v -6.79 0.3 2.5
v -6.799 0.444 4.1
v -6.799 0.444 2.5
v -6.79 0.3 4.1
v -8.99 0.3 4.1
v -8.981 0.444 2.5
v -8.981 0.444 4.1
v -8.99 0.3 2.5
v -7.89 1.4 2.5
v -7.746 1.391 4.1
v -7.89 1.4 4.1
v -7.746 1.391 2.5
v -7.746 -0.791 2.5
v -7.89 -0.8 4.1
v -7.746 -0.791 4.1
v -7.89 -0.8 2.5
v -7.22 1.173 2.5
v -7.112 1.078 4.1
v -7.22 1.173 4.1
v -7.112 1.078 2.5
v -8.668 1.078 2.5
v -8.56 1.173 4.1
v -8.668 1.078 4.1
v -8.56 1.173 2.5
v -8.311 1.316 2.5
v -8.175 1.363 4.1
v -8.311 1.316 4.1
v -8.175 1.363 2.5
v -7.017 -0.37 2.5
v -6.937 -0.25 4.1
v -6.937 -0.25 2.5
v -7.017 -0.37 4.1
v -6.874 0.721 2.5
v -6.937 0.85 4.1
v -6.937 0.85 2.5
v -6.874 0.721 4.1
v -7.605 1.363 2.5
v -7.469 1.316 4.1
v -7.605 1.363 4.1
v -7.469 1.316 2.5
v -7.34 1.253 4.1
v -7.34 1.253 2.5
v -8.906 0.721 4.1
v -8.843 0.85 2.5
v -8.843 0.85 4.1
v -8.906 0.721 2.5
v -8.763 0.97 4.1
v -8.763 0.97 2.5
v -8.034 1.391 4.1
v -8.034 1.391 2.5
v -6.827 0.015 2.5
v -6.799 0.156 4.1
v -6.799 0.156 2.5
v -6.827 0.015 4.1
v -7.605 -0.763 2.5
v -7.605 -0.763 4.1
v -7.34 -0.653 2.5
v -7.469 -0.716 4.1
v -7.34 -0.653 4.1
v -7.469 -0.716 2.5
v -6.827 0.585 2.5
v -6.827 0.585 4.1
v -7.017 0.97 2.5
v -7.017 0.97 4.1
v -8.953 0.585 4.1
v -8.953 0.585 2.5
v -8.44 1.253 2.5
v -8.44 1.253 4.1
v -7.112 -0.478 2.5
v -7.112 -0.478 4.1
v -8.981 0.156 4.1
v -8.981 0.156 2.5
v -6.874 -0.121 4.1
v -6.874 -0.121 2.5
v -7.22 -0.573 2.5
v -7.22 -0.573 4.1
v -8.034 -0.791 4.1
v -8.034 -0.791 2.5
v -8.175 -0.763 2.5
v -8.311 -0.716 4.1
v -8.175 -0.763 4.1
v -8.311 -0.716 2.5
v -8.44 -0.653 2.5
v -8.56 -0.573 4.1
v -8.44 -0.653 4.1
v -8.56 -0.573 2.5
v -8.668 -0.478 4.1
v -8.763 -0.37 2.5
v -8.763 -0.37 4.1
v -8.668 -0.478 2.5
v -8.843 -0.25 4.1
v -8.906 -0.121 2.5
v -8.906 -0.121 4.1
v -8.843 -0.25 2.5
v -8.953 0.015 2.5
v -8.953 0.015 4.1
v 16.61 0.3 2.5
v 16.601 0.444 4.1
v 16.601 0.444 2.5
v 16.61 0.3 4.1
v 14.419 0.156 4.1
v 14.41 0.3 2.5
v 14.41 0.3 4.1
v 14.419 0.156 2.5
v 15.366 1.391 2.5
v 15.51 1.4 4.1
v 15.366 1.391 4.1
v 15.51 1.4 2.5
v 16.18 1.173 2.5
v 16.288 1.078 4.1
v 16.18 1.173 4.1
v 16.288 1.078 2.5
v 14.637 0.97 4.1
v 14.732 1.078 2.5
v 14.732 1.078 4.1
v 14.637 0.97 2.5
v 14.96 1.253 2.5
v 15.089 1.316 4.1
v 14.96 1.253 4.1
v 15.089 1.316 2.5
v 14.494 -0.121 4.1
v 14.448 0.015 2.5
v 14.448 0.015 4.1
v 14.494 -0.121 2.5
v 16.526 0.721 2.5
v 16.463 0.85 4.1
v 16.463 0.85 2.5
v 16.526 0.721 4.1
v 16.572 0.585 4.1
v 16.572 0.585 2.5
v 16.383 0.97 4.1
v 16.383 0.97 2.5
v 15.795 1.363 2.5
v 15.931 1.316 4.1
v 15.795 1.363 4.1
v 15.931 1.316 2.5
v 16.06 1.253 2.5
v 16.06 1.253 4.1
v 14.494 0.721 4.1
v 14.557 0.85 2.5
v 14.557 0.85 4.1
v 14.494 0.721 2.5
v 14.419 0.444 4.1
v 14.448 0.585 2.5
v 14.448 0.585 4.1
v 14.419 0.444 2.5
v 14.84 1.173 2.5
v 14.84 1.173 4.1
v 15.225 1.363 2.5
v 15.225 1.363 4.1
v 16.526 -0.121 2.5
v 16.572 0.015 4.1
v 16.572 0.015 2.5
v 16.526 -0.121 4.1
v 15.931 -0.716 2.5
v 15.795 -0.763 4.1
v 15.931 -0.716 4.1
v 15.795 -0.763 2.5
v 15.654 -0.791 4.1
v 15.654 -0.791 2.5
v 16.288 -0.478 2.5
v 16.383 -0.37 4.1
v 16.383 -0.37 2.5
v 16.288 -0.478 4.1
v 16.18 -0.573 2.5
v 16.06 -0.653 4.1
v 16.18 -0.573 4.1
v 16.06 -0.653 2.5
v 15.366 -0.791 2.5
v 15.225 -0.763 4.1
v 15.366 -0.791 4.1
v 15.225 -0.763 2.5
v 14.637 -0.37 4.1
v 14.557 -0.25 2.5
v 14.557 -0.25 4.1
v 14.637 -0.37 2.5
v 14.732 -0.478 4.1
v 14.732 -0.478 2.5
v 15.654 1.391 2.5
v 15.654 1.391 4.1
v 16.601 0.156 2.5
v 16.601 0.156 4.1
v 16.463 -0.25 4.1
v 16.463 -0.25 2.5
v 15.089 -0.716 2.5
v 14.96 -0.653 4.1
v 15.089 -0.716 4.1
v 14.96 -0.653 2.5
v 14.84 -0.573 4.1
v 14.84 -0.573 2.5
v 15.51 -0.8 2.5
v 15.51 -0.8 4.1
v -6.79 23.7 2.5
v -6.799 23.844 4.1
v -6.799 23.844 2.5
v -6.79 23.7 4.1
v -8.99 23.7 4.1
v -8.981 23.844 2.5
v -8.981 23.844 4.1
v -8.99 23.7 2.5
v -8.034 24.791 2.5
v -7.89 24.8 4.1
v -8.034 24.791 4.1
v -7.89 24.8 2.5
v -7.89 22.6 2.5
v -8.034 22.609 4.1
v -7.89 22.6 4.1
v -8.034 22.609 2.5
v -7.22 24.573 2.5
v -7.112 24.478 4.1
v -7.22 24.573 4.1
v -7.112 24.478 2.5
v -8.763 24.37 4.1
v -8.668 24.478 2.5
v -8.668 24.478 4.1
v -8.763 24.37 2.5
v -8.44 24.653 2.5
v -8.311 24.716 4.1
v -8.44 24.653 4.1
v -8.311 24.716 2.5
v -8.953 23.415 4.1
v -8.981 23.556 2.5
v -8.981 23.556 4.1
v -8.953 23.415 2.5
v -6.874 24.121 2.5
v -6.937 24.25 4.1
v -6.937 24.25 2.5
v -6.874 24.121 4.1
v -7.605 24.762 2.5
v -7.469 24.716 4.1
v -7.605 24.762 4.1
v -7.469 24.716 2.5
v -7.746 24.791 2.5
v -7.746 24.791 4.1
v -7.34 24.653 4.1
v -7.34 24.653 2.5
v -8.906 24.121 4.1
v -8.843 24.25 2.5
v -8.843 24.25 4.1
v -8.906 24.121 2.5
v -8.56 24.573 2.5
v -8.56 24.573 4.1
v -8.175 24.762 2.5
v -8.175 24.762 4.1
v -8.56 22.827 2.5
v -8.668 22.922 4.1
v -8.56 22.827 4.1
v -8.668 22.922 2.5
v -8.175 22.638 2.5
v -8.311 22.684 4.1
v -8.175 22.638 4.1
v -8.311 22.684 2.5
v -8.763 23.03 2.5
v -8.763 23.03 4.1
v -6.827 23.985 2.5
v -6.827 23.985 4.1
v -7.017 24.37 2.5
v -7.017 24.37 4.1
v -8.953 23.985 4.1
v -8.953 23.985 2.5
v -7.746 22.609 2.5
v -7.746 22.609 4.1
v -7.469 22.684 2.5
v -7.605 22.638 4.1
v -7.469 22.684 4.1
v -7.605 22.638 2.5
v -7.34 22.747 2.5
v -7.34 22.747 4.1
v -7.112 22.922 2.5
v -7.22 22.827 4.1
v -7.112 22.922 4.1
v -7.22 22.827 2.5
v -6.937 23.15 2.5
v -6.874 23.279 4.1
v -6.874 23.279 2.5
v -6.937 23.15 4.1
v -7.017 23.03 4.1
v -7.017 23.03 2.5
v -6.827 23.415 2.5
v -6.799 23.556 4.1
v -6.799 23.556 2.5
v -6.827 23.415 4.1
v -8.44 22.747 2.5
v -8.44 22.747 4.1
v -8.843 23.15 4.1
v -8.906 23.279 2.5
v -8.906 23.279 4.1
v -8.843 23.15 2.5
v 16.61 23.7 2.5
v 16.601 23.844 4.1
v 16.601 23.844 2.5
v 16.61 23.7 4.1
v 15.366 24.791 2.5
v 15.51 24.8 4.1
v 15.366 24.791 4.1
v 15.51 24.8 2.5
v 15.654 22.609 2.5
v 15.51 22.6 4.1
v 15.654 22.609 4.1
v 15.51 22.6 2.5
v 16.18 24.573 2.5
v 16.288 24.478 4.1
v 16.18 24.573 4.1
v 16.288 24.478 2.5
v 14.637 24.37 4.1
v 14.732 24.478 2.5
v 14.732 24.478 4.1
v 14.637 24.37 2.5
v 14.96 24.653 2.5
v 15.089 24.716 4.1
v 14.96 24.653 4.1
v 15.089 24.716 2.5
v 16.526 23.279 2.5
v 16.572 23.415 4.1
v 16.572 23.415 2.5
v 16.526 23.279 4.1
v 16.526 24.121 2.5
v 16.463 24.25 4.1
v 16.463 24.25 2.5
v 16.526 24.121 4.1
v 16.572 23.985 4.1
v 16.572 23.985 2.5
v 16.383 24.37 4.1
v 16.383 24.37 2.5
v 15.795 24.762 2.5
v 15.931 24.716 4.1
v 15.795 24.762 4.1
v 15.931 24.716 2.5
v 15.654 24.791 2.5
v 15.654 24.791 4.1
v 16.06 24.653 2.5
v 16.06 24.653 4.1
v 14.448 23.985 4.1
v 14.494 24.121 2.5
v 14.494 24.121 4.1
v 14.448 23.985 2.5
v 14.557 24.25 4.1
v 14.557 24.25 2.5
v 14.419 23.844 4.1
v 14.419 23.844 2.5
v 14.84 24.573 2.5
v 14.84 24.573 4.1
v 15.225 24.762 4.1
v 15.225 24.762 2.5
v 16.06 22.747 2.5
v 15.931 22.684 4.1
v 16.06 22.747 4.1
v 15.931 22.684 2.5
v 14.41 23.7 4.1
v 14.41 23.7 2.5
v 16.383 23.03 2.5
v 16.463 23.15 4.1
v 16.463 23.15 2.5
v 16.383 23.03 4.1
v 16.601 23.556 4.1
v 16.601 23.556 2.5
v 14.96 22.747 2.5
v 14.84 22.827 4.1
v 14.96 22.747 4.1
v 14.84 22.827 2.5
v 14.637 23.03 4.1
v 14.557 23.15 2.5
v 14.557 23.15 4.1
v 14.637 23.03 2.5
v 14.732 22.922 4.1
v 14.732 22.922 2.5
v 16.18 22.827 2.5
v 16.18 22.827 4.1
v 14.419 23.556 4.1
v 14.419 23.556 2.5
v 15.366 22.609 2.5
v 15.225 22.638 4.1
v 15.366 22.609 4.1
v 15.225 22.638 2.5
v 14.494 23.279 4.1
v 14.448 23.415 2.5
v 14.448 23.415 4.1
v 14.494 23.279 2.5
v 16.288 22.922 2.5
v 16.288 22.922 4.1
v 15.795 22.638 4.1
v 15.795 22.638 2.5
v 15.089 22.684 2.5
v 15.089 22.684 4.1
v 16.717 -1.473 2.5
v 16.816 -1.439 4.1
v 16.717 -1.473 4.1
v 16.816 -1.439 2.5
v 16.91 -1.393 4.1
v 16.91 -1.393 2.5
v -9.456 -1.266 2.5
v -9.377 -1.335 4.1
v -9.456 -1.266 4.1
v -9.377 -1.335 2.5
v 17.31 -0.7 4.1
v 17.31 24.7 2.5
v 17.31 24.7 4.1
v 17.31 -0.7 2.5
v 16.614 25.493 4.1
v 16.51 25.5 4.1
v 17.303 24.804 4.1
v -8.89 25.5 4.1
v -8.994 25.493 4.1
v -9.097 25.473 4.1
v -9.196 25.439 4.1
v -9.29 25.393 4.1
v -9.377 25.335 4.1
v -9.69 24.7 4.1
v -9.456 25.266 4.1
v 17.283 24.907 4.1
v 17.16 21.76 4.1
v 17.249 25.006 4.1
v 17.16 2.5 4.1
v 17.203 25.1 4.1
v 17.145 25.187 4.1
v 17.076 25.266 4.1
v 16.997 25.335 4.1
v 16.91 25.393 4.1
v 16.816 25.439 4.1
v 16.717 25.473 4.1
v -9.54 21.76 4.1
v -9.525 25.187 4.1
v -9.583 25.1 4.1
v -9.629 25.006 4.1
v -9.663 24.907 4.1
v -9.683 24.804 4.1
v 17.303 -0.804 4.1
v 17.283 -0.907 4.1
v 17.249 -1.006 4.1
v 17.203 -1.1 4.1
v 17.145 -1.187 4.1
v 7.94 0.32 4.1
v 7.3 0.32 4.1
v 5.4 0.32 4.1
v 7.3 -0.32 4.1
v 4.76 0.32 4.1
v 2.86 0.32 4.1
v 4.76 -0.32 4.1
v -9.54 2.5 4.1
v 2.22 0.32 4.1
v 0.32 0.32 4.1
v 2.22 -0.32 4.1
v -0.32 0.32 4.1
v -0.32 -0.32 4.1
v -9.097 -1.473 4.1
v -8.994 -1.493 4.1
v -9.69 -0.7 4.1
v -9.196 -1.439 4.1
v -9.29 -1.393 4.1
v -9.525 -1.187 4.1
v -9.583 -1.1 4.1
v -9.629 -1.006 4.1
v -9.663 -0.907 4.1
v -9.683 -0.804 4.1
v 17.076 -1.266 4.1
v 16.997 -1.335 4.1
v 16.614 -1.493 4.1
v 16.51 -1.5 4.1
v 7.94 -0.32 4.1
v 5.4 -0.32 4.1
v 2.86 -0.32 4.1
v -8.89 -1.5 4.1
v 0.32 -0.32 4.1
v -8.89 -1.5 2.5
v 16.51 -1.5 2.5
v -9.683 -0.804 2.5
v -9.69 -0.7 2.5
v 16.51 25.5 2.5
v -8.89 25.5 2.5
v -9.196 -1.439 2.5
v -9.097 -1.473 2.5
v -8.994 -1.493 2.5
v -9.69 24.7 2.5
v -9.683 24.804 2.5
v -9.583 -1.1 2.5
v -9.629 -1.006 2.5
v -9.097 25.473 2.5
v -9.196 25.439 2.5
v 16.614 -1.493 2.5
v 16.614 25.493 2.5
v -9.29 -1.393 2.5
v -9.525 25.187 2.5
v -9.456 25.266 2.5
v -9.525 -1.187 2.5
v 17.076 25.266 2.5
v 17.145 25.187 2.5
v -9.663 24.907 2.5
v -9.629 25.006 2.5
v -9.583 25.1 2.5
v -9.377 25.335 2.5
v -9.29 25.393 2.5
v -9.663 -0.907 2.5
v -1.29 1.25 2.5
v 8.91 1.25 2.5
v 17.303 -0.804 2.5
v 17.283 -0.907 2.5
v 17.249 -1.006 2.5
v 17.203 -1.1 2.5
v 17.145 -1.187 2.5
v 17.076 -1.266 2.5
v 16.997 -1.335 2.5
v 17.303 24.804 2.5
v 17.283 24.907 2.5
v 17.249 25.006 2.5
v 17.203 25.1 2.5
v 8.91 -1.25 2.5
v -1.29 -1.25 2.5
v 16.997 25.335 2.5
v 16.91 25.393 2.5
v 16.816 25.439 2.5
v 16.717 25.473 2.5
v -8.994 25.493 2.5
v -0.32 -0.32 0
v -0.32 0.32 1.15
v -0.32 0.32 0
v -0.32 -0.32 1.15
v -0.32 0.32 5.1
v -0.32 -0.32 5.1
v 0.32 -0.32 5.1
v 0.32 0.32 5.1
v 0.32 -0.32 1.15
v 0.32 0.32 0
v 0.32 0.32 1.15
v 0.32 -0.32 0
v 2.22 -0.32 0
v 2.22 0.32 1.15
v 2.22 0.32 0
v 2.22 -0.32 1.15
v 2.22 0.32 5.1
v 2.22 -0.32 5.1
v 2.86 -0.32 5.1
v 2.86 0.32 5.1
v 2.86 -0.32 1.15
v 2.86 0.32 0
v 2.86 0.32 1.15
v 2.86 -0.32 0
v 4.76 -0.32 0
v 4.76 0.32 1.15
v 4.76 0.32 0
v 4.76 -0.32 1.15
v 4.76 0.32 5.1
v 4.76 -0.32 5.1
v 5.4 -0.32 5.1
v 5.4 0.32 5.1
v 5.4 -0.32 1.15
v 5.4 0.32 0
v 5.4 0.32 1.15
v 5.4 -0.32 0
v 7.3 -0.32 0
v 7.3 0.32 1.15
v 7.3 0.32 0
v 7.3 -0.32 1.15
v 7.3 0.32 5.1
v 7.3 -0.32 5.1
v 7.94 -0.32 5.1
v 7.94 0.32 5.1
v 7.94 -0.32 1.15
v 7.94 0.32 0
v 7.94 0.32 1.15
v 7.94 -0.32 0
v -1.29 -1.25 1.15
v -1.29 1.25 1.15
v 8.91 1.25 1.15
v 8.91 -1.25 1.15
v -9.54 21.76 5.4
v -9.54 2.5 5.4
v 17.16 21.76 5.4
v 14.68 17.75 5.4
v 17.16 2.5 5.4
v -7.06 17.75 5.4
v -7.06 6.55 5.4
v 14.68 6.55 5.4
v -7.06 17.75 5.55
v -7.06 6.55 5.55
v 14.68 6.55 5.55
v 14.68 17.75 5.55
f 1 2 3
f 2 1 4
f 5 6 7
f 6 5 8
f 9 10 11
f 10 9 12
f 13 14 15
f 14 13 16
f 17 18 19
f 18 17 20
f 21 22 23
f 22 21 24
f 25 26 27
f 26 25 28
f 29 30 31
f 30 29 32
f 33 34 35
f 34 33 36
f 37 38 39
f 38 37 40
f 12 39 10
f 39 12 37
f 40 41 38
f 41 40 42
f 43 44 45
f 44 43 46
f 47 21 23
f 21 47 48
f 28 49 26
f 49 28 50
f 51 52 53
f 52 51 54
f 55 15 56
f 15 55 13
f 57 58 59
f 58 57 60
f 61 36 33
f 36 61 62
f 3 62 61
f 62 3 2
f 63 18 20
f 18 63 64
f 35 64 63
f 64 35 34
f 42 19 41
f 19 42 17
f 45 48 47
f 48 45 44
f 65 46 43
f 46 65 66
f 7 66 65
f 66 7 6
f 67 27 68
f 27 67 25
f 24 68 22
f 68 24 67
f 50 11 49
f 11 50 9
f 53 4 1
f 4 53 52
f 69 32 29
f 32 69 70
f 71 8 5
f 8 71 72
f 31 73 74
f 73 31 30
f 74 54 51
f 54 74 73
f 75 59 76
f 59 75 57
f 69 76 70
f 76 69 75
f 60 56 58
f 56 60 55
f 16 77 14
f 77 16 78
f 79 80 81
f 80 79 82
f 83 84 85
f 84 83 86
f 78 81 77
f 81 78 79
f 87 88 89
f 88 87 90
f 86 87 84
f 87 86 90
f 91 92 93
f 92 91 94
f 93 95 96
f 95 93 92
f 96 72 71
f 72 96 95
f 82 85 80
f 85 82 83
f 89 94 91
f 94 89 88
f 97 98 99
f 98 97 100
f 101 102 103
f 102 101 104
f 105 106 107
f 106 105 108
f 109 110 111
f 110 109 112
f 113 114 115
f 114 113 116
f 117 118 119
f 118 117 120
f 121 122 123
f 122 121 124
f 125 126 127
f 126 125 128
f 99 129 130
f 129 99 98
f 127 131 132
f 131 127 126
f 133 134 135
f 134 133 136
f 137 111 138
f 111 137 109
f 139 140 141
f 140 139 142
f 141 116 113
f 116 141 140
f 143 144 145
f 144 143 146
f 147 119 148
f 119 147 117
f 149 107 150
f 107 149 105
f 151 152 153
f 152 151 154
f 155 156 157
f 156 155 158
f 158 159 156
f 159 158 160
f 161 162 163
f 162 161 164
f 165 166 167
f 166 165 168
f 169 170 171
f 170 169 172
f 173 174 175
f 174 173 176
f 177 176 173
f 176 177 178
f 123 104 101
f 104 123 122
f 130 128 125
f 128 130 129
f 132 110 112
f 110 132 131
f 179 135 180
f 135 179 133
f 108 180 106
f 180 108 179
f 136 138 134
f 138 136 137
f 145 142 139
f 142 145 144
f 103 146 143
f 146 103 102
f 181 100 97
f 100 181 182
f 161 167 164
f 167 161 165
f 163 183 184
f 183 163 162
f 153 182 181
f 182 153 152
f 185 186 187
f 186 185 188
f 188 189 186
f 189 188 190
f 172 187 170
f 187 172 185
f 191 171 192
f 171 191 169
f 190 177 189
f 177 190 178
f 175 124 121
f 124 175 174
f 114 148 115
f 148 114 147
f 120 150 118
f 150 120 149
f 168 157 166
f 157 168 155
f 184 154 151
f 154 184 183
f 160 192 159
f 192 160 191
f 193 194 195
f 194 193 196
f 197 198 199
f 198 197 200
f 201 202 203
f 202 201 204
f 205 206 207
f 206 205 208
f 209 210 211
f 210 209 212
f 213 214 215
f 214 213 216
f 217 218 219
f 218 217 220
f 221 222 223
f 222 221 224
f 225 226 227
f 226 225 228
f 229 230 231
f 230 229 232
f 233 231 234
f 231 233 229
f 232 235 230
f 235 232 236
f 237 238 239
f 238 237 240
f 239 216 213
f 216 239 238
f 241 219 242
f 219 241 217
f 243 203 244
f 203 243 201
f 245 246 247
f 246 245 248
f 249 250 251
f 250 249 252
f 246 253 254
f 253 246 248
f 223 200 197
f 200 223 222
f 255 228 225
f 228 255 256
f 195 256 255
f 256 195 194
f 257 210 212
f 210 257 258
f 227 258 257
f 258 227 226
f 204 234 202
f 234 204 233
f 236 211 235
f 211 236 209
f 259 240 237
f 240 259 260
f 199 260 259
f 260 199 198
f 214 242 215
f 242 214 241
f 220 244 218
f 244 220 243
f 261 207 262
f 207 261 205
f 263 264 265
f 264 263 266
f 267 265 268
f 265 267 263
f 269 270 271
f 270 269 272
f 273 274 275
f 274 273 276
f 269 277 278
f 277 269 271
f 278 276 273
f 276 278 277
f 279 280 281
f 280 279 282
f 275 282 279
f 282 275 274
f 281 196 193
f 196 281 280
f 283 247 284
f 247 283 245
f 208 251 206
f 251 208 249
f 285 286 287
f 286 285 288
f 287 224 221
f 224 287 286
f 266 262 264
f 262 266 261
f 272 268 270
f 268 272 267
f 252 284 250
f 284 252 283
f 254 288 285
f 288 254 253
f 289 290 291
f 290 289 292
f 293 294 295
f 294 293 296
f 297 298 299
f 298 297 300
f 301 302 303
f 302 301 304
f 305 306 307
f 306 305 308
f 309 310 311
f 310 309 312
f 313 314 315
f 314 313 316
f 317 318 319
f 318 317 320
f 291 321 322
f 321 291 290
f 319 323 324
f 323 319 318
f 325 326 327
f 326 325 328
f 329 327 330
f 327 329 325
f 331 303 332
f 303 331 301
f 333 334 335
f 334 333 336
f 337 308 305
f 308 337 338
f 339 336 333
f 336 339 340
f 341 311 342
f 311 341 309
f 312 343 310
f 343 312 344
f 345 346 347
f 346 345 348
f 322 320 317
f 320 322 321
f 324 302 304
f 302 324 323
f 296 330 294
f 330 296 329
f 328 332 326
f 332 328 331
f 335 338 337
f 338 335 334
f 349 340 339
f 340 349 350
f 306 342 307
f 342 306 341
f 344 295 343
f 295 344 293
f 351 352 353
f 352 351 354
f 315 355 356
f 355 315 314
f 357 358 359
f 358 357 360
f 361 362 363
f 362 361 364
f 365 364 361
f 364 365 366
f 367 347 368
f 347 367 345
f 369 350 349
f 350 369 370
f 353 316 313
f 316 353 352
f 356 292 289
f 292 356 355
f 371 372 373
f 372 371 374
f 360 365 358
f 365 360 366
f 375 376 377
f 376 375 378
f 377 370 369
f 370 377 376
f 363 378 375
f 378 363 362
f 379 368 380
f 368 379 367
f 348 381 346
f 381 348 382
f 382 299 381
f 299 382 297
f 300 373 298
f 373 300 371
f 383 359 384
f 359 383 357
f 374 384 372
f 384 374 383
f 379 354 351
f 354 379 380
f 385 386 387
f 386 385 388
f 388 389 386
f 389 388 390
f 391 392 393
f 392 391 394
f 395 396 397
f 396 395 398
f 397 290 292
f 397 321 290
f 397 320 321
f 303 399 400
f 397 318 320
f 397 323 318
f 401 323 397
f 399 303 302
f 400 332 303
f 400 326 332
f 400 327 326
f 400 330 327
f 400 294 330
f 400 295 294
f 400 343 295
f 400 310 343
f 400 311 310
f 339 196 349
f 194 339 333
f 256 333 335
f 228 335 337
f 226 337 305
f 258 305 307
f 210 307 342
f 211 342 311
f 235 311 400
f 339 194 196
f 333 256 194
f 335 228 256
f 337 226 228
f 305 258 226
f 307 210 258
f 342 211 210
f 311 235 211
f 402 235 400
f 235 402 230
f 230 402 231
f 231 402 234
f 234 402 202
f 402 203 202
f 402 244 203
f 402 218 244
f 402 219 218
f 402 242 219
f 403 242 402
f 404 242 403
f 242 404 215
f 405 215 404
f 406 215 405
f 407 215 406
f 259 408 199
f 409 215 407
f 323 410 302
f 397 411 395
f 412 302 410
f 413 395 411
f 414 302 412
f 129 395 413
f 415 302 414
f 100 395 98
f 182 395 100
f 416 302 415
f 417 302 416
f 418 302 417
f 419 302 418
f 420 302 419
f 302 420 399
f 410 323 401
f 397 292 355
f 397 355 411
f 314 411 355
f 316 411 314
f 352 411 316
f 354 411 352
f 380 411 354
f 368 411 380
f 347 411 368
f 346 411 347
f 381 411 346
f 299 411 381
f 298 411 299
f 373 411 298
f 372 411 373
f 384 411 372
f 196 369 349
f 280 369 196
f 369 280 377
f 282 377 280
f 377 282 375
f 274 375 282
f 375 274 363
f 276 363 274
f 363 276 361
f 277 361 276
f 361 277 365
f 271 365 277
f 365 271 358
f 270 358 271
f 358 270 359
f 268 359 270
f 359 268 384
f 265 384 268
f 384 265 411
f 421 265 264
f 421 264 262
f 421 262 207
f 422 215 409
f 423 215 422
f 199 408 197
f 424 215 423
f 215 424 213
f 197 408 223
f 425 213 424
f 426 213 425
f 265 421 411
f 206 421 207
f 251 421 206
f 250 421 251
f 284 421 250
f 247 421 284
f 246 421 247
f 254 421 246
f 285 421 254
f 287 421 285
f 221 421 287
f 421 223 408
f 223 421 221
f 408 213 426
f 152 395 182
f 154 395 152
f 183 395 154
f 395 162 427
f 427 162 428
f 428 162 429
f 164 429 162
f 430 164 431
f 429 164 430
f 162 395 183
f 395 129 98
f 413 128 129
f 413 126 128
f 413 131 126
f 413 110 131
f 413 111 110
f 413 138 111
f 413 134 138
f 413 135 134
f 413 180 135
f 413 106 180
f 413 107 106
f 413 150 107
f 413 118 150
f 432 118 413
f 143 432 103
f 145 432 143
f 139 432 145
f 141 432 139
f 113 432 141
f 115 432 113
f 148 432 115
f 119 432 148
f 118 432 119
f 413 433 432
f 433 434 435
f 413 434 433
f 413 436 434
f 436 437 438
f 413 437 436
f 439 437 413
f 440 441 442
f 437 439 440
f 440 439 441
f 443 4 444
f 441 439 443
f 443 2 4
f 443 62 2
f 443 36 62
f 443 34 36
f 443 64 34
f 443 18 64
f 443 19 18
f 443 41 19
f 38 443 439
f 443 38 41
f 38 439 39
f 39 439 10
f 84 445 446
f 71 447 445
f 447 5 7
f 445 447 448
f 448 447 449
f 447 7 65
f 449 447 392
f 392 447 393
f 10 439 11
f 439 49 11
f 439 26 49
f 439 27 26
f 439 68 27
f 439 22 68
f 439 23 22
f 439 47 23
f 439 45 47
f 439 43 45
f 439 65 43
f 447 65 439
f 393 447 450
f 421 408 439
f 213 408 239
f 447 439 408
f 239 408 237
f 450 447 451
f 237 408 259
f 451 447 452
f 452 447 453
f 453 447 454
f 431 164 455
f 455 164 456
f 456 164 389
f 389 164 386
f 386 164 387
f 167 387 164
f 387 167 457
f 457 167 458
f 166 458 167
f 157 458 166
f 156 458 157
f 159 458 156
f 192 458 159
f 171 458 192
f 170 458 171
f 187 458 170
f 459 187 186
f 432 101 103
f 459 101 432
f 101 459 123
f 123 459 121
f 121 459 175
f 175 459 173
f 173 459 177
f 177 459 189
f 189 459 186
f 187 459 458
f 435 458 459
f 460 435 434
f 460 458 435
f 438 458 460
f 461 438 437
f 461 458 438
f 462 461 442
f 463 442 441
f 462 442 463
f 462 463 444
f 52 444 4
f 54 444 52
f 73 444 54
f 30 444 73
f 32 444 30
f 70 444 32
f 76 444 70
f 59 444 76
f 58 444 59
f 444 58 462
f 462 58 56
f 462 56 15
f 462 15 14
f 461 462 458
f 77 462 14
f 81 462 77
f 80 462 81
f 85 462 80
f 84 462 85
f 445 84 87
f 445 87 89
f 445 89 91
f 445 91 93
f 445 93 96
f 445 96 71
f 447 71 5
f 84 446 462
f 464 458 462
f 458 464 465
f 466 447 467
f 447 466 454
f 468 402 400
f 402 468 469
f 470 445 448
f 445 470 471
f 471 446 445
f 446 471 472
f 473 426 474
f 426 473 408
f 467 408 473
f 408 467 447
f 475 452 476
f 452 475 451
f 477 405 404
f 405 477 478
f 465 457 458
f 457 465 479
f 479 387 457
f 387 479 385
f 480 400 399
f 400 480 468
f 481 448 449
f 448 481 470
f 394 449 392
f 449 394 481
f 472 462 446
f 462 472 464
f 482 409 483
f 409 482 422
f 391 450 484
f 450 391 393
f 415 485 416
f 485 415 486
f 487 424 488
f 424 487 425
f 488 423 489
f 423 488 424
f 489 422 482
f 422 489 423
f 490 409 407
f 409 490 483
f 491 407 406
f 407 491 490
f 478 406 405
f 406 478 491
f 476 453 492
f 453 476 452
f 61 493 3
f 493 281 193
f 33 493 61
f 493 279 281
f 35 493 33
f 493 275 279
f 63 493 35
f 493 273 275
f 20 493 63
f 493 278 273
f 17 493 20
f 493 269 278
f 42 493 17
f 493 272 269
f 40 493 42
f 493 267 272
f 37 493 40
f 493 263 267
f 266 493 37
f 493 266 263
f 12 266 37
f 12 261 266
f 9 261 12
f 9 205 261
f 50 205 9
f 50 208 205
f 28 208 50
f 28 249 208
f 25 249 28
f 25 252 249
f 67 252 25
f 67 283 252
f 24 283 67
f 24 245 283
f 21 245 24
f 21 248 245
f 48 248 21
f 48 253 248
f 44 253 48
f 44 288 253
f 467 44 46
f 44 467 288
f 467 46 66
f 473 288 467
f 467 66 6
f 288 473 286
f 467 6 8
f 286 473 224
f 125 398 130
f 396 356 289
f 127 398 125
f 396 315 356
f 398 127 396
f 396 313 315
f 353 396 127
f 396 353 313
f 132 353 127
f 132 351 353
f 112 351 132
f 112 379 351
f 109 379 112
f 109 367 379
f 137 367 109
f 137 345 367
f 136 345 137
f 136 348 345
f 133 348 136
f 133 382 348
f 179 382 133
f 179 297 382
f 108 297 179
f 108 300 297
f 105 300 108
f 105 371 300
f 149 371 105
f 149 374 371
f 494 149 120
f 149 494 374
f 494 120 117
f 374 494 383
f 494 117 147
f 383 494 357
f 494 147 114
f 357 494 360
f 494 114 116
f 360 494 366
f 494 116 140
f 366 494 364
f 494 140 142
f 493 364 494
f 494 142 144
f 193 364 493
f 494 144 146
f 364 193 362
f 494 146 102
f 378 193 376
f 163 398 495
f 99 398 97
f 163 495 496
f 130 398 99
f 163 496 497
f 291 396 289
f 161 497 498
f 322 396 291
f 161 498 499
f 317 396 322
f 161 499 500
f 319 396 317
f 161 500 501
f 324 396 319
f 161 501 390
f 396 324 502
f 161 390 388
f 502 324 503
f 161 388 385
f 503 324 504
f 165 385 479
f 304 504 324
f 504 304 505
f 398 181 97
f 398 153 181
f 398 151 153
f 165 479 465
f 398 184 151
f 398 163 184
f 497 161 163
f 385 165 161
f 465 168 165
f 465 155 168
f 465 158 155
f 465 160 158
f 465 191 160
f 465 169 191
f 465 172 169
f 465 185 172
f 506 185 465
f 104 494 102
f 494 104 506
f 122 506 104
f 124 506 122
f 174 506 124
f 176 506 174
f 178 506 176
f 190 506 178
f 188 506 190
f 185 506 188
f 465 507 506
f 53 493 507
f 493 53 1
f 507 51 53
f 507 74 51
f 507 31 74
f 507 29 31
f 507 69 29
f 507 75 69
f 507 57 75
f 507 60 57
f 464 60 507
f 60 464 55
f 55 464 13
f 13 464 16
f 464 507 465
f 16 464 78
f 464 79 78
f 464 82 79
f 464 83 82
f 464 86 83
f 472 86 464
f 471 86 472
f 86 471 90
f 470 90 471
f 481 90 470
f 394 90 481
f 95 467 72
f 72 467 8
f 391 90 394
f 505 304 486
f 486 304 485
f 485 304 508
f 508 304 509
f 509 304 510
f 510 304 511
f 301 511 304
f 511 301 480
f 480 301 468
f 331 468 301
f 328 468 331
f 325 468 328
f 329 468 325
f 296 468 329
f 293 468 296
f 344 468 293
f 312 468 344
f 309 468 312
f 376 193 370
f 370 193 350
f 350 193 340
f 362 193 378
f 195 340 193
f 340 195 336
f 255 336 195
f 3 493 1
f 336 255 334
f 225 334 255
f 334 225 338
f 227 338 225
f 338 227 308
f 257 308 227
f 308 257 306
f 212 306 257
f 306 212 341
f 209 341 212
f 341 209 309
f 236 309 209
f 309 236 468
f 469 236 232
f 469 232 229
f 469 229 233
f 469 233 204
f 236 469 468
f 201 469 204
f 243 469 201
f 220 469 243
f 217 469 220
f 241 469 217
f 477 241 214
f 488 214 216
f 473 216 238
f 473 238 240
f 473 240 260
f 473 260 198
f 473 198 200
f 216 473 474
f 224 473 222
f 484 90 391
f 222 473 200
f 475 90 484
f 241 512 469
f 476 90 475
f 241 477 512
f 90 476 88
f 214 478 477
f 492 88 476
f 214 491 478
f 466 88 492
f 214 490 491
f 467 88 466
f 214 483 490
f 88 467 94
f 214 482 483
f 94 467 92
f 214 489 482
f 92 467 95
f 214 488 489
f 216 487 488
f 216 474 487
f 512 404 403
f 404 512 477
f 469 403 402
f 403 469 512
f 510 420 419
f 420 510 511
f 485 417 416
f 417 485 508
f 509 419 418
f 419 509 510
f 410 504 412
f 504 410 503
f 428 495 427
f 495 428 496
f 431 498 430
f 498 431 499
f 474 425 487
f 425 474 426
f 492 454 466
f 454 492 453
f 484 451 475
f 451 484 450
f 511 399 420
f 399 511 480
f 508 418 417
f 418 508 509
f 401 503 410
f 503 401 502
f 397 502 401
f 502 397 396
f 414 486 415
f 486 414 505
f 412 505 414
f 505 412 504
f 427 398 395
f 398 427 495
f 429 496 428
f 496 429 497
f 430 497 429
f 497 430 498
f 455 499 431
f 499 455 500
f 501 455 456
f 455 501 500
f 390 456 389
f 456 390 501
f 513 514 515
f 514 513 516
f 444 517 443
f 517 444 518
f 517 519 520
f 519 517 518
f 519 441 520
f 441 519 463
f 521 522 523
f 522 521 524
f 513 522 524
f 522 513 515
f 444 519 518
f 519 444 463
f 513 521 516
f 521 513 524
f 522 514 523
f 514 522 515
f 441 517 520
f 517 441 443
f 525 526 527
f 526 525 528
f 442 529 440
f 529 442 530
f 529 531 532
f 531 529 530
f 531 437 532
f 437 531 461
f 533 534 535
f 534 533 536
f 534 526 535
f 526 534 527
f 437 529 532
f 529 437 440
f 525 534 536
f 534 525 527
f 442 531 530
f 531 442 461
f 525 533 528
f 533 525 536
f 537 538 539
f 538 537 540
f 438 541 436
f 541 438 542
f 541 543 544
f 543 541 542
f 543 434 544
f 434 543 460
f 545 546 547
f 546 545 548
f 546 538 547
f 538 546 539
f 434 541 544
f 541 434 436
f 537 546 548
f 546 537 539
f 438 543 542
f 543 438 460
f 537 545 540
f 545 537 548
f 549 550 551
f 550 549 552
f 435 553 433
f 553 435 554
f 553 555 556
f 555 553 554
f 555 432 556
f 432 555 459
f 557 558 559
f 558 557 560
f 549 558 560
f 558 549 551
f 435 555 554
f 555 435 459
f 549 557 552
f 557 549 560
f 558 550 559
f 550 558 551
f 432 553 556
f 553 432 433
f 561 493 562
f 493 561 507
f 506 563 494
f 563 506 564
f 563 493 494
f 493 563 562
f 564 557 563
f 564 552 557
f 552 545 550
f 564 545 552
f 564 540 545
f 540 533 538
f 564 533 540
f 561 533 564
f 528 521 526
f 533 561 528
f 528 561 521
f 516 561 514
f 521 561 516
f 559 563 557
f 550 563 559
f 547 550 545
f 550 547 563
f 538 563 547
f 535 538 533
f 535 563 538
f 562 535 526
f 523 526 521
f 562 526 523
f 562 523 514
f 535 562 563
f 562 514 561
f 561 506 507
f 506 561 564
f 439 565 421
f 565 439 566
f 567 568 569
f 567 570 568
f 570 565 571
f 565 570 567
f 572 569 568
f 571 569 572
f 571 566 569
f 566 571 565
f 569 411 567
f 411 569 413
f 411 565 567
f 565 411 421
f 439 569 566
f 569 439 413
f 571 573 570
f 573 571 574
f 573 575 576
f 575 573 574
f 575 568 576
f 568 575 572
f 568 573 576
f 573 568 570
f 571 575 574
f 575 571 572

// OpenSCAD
// Simplified 0.96-inch SSD1306 I2C OLED module for KiCad 3D visualization.
// Origin: footprint pad 1 (GND), Z=0 at host-PCB top.

$fn = 48;
eps = 0.02;

board_min_x = -9.69;
board_min_y = -1.50;
board_x = 27.0;
board_y = 27.0;
board_bottom = 2.50;
board_z = 1.60;
corner_r = 0.8;

hole_positions = [
    [-7.89, 0.30],
    [15.51, 0.30],
    [-7.89, 23.70],
    [15.51, 23.70]
];
hole_d = 2.20;

module rounded_board_2d() {
    translate([board_min_x + board_x / 2, board_min_y + board_y / 2])
        offset(r = corner_r)
            square([board_x - 2 * corner_r, board_y - 2 * corner_r], center = true);
}

module oled_board() {
    difference() {
        translate([0, 0, board_bottom])
            linear_extrude(height = board_z) rounded_board_2d();
        for (p = hole_positions)
            translate([p[0], p[1], board_bottom - eps])
                cylinder(d = hole_d, h = board_z + 2 * eps);
    }
}

module pin_header() {
    // Four 2.54-mm pins and their plastic carrier.
    translate([3.81, 0, board_bottom - 0.1])
        cube([10.2, 2.5, 2.5], center = true);
    for (x = [0, 2.54, 5.08, 7.62])
        translate([x - 0.32, -0.32, 0]) cube([0.64, 0.64, board_bottom + board_z + 1.0]);
}

module oled_panel() {
    panel_z = board_bottom + board_z;
    // Glass carrier and raised active display window.
    translate([(board_min_x + 17.31) / 2, (2.50 + 21.76) / 2, panel_z + 0.65])
        cube([26.70, 19.26, 1.30], center = true);
    translate([(-7.06 + 14.68) / 2, (6.55 + 17.75) / 2, panel_z + 1.36])
        cube([21.74, 11.20, 0.18], center = true);
}

module oled_module() {
    union() {
        oled_board();
        pin_header();
        oled_panel();
    }
}

oled_module();
